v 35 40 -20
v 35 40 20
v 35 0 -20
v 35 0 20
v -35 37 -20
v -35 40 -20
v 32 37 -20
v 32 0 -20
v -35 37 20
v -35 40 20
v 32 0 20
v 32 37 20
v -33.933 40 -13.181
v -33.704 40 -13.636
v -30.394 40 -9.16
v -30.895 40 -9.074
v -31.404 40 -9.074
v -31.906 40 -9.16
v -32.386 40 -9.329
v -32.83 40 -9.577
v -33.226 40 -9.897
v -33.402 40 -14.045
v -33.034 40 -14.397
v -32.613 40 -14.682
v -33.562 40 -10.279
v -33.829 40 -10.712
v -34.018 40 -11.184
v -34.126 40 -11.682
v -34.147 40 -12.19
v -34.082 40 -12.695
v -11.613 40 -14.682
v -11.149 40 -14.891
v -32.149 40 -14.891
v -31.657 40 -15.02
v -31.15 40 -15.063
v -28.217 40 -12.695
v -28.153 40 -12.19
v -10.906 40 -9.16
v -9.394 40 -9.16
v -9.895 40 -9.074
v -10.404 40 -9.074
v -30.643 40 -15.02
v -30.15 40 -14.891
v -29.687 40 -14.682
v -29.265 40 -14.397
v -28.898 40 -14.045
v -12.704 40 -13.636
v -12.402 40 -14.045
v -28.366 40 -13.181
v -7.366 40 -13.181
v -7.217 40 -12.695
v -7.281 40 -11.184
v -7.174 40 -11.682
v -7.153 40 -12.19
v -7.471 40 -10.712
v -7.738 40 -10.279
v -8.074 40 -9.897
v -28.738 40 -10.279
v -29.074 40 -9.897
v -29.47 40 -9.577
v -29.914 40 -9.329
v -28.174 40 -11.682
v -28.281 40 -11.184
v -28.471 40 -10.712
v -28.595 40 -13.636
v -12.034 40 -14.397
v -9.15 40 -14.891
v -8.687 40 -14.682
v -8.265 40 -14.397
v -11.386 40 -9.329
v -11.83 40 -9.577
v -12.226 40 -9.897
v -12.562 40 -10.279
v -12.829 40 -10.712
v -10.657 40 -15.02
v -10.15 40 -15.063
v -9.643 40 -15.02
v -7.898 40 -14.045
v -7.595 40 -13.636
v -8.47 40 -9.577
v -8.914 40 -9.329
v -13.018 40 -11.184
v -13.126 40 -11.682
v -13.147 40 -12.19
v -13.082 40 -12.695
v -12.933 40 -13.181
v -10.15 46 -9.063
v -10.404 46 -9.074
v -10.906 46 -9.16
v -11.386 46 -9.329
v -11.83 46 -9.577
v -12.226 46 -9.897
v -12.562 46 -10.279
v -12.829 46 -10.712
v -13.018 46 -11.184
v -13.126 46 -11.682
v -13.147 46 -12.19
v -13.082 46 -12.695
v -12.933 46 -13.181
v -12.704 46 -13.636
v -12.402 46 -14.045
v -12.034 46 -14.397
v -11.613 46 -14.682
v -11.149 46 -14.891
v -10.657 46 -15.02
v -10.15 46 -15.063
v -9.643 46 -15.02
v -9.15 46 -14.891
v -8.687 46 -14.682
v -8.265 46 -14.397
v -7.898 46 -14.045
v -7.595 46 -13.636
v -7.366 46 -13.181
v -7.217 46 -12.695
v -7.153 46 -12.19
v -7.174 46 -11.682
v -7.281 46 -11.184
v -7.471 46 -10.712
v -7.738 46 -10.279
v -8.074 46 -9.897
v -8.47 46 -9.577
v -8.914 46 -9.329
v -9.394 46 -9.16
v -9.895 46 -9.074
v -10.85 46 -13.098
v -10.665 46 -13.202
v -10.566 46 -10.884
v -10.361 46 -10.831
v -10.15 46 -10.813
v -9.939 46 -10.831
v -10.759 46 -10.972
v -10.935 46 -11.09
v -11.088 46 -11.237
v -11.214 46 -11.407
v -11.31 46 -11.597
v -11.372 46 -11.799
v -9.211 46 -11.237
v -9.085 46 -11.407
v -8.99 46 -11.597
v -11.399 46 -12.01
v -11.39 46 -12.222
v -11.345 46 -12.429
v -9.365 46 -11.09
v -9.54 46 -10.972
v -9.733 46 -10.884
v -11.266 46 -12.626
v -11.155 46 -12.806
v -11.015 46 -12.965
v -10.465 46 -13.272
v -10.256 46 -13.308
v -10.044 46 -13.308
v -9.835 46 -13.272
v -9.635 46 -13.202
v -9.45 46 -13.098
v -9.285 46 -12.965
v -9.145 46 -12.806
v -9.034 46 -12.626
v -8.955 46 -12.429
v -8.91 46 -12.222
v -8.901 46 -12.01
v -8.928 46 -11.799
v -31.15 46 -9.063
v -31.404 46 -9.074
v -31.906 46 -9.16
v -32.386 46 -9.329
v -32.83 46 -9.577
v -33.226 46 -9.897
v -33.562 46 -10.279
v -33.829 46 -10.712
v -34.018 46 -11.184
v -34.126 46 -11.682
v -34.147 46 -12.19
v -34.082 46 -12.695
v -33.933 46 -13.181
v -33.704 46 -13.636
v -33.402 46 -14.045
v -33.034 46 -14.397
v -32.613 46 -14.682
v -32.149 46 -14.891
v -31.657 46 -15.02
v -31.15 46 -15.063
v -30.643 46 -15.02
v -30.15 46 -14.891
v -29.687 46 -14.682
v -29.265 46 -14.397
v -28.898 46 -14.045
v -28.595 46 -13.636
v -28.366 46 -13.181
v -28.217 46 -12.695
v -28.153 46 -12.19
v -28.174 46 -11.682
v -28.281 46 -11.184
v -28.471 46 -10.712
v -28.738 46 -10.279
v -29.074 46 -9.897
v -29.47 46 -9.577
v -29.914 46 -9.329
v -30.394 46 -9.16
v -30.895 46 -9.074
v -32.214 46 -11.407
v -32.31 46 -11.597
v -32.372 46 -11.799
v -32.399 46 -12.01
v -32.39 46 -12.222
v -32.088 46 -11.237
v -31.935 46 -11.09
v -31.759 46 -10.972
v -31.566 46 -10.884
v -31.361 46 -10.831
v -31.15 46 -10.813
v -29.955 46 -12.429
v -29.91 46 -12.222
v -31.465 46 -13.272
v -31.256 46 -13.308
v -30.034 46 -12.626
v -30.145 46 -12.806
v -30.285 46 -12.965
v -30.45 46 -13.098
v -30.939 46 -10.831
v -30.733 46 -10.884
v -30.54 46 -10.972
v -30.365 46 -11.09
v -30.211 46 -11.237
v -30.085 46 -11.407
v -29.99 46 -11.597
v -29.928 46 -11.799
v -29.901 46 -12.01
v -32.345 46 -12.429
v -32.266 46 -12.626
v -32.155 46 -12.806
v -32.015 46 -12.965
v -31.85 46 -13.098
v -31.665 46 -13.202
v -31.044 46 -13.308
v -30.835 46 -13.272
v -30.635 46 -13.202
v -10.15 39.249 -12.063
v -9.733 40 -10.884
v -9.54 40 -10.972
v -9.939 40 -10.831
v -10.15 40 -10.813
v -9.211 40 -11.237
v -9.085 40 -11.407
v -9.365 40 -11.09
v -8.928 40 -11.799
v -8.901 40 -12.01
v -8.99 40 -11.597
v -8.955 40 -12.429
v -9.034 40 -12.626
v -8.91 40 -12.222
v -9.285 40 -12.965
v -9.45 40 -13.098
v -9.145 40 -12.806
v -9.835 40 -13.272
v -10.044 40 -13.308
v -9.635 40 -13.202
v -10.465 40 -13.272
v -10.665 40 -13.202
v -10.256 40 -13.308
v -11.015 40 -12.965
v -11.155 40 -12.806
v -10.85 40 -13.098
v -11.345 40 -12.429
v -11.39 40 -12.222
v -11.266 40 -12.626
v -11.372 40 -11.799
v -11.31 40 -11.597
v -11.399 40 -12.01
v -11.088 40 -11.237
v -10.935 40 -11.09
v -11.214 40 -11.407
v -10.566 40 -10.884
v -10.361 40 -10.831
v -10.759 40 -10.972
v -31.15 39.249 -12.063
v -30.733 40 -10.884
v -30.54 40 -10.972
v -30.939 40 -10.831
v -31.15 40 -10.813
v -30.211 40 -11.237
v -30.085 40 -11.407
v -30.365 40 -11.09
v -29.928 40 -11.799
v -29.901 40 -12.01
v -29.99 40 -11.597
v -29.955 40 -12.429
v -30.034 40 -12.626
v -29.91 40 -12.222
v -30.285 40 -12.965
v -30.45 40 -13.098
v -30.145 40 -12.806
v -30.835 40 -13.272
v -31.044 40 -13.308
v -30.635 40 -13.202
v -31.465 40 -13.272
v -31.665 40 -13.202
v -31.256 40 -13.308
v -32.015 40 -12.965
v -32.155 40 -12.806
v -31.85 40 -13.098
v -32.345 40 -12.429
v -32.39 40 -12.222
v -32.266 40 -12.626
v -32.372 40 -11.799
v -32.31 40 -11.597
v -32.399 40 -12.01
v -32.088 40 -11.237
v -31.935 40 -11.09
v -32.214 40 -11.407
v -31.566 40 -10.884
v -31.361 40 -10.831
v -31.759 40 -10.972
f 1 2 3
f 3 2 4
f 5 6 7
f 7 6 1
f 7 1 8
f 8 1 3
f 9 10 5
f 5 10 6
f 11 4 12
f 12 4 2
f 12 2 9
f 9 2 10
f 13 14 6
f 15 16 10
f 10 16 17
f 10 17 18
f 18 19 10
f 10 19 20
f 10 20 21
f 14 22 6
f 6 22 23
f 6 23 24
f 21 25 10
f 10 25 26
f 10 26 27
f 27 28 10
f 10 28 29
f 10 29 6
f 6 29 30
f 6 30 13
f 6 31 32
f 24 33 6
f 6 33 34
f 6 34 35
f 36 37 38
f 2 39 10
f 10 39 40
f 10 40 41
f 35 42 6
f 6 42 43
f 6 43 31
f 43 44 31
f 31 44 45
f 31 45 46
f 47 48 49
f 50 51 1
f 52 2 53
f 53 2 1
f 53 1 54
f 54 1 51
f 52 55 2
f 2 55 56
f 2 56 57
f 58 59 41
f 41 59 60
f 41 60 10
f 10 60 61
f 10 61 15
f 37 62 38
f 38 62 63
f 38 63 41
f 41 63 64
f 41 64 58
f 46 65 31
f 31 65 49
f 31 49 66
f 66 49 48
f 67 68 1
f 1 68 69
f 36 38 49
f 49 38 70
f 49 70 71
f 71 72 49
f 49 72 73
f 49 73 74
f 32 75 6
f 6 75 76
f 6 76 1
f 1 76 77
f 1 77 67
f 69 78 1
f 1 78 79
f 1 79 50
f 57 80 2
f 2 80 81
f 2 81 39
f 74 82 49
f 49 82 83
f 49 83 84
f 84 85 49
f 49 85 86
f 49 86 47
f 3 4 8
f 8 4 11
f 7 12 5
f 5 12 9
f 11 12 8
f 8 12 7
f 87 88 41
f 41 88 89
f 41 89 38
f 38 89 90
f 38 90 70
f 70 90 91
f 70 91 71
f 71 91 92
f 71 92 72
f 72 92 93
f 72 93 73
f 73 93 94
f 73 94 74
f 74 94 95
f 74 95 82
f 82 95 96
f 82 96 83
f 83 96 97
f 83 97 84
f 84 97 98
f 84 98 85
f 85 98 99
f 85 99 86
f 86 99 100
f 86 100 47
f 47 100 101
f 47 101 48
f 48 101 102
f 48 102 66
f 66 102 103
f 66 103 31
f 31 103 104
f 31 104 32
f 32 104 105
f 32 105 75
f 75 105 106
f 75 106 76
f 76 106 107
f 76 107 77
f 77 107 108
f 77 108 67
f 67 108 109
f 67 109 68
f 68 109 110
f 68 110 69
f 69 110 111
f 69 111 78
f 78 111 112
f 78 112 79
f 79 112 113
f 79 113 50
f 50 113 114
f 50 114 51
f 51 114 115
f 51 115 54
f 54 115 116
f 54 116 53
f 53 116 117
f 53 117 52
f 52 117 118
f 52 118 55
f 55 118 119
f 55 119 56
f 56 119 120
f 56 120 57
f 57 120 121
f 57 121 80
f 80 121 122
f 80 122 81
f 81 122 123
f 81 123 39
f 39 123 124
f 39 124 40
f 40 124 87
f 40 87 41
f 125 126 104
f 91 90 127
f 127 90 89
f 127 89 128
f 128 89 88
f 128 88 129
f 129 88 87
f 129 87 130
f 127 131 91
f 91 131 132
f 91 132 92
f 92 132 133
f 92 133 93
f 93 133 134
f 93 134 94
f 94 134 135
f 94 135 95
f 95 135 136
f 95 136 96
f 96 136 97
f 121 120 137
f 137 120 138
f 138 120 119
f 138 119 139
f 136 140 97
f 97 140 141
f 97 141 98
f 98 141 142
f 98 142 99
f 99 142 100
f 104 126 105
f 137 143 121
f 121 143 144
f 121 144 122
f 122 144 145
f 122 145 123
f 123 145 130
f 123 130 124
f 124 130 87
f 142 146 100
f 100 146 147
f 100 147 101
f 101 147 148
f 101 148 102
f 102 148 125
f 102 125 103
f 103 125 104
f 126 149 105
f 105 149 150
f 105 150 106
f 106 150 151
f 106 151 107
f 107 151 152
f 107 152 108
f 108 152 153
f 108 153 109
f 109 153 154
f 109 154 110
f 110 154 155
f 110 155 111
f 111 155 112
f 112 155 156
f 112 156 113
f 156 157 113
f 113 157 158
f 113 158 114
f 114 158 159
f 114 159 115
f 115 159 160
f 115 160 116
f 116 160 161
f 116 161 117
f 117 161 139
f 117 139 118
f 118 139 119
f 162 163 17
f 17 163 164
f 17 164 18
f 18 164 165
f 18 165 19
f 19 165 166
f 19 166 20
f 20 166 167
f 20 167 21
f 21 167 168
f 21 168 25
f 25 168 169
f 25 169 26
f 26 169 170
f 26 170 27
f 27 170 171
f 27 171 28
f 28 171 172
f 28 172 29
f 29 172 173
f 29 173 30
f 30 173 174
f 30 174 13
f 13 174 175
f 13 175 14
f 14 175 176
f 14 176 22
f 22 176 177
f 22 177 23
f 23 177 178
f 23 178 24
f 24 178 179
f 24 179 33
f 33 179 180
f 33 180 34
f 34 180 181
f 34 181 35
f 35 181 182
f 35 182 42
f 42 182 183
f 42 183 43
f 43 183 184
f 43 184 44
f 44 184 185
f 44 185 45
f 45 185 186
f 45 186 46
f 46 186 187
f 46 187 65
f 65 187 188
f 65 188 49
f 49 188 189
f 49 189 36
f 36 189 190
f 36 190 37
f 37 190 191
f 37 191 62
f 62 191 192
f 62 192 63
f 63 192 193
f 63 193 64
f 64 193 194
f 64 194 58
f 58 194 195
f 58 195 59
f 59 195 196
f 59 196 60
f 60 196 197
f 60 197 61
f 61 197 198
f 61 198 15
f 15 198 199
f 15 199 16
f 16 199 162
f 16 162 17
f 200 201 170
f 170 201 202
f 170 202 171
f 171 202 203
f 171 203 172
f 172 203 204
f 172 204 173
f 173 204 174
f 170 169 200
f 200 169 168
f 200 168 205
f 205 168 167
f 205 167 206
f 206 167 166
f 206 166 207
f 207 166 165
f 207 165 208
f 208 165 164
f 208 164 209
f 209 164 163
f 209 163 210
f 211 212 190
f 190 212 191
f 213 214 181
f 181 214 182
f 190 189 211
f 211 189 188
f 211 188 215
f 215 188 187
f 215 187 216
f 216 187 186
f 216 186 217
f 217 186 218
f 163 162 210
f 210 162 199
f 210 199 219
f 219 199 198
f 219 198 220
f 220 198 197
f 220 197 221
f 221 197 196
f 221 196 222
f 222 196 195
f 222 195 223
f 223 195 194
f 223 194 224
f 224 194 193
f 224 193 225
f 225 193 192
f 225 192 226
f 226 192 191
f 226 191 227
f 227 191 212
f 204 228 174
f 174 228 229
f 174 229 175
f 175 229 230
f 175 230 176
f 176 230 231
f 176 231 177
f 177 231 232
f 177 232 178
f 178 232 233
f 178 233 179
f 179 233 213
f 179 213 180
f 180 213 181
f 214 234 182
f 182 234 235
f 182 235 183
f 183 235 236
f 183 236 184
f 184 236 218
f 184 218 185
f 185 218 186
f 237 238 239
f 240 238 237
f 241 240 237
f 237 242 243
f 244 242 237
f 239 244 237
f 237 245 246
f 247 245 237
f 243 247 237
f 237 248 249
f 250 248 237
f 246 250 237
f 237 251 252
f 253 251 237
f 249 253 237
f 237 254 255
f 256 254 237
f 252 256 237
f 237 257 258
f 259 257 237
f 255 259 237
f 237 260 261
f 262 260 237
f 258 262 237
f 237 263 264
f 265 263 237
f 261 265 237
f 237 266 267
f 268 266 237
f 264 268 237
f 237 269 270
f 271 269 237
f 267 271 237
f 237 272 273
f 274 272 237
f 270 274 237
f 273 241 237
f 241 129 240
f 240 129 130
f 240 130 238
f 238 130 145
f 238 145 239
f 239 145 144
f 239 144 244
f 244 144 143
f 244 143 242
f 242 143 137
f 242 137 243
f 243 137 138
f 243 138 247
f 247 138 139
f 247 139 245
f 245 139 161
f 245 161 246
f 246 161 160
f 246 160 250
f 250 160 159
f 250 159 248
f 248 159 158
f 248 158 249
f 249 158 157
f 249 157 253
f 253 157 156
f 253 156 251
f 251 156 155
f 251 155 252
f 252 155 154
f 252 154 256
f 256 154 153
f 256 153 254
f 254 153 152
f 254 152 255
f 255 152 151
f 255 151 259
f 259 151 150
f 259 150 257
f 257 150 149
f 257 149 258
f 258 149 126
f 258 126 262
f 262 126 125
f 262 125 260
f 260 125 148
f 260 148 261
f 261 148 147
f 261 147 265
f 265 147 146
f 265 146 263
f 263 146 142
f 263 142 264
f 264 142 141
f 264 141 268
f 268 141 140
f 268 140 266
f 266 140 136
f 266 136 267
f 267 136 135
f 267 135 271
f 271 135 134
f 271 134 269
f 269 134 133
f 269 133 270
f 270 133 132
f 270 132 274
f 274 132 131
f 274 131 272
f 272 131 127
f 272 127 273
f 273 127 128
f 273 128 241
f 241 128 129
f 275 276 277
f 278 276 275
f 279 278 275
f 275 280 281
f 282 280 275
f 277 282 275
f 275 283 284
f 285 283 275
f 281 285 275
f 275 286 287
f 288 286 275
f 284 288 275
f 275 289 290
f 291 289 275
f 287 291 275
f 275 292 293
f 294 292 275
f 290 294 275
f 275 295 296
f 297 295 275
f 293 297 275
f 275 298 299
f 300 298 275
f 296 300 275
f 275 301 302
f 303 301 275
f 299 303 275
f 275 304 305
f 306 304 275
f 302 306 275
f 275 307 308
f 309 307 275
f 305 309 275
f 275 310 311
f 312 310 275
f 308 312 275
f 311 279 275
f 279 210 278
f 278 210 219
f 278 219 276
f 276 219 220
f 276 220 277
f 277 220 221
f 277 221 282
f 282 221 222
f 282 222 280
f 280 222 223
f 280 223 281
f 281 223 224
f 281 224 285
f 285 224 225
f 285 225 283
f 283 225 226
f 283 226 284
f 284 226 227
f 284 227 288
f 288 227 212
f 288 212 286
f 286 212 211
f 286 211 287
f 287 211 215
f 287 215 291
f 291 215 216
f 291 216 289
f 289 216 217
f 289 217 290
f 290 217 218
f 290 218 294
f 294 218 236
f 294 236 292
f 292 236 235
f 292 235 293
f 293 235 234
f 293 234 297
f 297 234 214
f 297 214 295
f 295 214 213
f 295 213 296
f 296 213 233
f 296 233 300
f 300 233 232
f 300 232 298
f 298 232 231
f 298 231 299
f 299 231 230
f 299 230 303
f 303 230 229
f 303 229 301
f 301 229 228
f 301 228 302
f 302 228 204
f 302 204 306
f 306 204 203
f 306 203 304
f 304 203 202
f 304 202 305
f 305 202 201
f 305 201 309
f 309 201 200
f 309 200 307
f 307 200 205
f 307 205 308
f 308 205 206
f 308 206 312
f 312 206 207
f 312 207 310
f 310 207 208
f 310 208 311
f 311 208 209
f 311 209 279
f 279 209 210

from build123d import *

# Parameters (mm, degrees)
SKETCH1_W                       = 70
SKETCH1_H                       = 40
BOSS_EXTRUDE1_DEPTH             = 40
SKETCH2_W                       = 40
SKETCH2_H                       = 37
CUT_EXTRUDE1_DEPTH              = 67
SKETCH4_R                       = 3
BOSS_EXTRUDE2_DEPTH             = 6
TAP_DRILL_FOR_M3X0_5_TAP2_D     = 2.5
TAP_DRILL_FOR_M3X0_5_TAP2_DEPTH = 6
TAP_DRILL_FOR_M3X0_5_TAP2_TIP   = 0.751075774


with BuildPart() as part:
    # Sketch1 → Boss-Extrude1 (new body)
    with BuildSketch(Plane(origin=(0, 0, 0), x_dir=(1, 0, 0), z_dir=(0, 1, 0))):
        Rectangle(SKETCH1_W, SKETCH1_H)
    extrude(amount=BOSS_EXTRUDE1_DEPTH)

    # Sketch2 → Cut-Extrude1 (cut)
    with BuildSketch(Plane.ZY.offset(35)):
        with Locations((0, 18.5)):
            Rectangle(SKETCH2_W, SKETCH2_H)
    extrude(amount=-CUT_EXTRUDE1_DEPTH, mode=Mode.SUBTRACT)

    # Sketch4 → Boss-Extrude2 (add)
    with BuildSketch(Plane(origin=(0, 40, 0), x_dir=(1, 0, 0), z_dir=(0, 1, 0))):
        with Locations((-31.149822544, 12.062768)):
            Circle(SKETCH4_R)
        with Locations((-10.149822544, 12.062768)):
            Circle(SKETCH4_R)
    extrude(amount=BOSS_EXTRUDE2_DEPTH)

    # Tap Drill for M3x0.5 Tap2
    with Locations(Plane(origin=(0, 46, 0), x_dir=(1, 0, 0), z_dir=(0, 1, 0))):
        with Locations((-31.149822544, 12.062768), (-10.149822544, 12.062768)):
            Hole(TAP_DRILL_FOR_M3X0_5_TAP2_D / 2, depth=TAP_DRILL_FOR_M3X0_5_TAP2_DEPTH)
            with Locations((0, 0, -(TAP_DRILL_FOR_M3X0_5_TAP2_DEPTH + TAP_DRILL_FOR_M3X0_5_TAP2_TIP / 2))):  # 118° drill point
                Cone(0, TAP_DRILL_FOR_M3X0_5_TAP2_D / 2, TAP_DRILL_FOR_M3X0_5_TAP2_TIP, mode=Mode.SUBTRACT)


solid = part.part
